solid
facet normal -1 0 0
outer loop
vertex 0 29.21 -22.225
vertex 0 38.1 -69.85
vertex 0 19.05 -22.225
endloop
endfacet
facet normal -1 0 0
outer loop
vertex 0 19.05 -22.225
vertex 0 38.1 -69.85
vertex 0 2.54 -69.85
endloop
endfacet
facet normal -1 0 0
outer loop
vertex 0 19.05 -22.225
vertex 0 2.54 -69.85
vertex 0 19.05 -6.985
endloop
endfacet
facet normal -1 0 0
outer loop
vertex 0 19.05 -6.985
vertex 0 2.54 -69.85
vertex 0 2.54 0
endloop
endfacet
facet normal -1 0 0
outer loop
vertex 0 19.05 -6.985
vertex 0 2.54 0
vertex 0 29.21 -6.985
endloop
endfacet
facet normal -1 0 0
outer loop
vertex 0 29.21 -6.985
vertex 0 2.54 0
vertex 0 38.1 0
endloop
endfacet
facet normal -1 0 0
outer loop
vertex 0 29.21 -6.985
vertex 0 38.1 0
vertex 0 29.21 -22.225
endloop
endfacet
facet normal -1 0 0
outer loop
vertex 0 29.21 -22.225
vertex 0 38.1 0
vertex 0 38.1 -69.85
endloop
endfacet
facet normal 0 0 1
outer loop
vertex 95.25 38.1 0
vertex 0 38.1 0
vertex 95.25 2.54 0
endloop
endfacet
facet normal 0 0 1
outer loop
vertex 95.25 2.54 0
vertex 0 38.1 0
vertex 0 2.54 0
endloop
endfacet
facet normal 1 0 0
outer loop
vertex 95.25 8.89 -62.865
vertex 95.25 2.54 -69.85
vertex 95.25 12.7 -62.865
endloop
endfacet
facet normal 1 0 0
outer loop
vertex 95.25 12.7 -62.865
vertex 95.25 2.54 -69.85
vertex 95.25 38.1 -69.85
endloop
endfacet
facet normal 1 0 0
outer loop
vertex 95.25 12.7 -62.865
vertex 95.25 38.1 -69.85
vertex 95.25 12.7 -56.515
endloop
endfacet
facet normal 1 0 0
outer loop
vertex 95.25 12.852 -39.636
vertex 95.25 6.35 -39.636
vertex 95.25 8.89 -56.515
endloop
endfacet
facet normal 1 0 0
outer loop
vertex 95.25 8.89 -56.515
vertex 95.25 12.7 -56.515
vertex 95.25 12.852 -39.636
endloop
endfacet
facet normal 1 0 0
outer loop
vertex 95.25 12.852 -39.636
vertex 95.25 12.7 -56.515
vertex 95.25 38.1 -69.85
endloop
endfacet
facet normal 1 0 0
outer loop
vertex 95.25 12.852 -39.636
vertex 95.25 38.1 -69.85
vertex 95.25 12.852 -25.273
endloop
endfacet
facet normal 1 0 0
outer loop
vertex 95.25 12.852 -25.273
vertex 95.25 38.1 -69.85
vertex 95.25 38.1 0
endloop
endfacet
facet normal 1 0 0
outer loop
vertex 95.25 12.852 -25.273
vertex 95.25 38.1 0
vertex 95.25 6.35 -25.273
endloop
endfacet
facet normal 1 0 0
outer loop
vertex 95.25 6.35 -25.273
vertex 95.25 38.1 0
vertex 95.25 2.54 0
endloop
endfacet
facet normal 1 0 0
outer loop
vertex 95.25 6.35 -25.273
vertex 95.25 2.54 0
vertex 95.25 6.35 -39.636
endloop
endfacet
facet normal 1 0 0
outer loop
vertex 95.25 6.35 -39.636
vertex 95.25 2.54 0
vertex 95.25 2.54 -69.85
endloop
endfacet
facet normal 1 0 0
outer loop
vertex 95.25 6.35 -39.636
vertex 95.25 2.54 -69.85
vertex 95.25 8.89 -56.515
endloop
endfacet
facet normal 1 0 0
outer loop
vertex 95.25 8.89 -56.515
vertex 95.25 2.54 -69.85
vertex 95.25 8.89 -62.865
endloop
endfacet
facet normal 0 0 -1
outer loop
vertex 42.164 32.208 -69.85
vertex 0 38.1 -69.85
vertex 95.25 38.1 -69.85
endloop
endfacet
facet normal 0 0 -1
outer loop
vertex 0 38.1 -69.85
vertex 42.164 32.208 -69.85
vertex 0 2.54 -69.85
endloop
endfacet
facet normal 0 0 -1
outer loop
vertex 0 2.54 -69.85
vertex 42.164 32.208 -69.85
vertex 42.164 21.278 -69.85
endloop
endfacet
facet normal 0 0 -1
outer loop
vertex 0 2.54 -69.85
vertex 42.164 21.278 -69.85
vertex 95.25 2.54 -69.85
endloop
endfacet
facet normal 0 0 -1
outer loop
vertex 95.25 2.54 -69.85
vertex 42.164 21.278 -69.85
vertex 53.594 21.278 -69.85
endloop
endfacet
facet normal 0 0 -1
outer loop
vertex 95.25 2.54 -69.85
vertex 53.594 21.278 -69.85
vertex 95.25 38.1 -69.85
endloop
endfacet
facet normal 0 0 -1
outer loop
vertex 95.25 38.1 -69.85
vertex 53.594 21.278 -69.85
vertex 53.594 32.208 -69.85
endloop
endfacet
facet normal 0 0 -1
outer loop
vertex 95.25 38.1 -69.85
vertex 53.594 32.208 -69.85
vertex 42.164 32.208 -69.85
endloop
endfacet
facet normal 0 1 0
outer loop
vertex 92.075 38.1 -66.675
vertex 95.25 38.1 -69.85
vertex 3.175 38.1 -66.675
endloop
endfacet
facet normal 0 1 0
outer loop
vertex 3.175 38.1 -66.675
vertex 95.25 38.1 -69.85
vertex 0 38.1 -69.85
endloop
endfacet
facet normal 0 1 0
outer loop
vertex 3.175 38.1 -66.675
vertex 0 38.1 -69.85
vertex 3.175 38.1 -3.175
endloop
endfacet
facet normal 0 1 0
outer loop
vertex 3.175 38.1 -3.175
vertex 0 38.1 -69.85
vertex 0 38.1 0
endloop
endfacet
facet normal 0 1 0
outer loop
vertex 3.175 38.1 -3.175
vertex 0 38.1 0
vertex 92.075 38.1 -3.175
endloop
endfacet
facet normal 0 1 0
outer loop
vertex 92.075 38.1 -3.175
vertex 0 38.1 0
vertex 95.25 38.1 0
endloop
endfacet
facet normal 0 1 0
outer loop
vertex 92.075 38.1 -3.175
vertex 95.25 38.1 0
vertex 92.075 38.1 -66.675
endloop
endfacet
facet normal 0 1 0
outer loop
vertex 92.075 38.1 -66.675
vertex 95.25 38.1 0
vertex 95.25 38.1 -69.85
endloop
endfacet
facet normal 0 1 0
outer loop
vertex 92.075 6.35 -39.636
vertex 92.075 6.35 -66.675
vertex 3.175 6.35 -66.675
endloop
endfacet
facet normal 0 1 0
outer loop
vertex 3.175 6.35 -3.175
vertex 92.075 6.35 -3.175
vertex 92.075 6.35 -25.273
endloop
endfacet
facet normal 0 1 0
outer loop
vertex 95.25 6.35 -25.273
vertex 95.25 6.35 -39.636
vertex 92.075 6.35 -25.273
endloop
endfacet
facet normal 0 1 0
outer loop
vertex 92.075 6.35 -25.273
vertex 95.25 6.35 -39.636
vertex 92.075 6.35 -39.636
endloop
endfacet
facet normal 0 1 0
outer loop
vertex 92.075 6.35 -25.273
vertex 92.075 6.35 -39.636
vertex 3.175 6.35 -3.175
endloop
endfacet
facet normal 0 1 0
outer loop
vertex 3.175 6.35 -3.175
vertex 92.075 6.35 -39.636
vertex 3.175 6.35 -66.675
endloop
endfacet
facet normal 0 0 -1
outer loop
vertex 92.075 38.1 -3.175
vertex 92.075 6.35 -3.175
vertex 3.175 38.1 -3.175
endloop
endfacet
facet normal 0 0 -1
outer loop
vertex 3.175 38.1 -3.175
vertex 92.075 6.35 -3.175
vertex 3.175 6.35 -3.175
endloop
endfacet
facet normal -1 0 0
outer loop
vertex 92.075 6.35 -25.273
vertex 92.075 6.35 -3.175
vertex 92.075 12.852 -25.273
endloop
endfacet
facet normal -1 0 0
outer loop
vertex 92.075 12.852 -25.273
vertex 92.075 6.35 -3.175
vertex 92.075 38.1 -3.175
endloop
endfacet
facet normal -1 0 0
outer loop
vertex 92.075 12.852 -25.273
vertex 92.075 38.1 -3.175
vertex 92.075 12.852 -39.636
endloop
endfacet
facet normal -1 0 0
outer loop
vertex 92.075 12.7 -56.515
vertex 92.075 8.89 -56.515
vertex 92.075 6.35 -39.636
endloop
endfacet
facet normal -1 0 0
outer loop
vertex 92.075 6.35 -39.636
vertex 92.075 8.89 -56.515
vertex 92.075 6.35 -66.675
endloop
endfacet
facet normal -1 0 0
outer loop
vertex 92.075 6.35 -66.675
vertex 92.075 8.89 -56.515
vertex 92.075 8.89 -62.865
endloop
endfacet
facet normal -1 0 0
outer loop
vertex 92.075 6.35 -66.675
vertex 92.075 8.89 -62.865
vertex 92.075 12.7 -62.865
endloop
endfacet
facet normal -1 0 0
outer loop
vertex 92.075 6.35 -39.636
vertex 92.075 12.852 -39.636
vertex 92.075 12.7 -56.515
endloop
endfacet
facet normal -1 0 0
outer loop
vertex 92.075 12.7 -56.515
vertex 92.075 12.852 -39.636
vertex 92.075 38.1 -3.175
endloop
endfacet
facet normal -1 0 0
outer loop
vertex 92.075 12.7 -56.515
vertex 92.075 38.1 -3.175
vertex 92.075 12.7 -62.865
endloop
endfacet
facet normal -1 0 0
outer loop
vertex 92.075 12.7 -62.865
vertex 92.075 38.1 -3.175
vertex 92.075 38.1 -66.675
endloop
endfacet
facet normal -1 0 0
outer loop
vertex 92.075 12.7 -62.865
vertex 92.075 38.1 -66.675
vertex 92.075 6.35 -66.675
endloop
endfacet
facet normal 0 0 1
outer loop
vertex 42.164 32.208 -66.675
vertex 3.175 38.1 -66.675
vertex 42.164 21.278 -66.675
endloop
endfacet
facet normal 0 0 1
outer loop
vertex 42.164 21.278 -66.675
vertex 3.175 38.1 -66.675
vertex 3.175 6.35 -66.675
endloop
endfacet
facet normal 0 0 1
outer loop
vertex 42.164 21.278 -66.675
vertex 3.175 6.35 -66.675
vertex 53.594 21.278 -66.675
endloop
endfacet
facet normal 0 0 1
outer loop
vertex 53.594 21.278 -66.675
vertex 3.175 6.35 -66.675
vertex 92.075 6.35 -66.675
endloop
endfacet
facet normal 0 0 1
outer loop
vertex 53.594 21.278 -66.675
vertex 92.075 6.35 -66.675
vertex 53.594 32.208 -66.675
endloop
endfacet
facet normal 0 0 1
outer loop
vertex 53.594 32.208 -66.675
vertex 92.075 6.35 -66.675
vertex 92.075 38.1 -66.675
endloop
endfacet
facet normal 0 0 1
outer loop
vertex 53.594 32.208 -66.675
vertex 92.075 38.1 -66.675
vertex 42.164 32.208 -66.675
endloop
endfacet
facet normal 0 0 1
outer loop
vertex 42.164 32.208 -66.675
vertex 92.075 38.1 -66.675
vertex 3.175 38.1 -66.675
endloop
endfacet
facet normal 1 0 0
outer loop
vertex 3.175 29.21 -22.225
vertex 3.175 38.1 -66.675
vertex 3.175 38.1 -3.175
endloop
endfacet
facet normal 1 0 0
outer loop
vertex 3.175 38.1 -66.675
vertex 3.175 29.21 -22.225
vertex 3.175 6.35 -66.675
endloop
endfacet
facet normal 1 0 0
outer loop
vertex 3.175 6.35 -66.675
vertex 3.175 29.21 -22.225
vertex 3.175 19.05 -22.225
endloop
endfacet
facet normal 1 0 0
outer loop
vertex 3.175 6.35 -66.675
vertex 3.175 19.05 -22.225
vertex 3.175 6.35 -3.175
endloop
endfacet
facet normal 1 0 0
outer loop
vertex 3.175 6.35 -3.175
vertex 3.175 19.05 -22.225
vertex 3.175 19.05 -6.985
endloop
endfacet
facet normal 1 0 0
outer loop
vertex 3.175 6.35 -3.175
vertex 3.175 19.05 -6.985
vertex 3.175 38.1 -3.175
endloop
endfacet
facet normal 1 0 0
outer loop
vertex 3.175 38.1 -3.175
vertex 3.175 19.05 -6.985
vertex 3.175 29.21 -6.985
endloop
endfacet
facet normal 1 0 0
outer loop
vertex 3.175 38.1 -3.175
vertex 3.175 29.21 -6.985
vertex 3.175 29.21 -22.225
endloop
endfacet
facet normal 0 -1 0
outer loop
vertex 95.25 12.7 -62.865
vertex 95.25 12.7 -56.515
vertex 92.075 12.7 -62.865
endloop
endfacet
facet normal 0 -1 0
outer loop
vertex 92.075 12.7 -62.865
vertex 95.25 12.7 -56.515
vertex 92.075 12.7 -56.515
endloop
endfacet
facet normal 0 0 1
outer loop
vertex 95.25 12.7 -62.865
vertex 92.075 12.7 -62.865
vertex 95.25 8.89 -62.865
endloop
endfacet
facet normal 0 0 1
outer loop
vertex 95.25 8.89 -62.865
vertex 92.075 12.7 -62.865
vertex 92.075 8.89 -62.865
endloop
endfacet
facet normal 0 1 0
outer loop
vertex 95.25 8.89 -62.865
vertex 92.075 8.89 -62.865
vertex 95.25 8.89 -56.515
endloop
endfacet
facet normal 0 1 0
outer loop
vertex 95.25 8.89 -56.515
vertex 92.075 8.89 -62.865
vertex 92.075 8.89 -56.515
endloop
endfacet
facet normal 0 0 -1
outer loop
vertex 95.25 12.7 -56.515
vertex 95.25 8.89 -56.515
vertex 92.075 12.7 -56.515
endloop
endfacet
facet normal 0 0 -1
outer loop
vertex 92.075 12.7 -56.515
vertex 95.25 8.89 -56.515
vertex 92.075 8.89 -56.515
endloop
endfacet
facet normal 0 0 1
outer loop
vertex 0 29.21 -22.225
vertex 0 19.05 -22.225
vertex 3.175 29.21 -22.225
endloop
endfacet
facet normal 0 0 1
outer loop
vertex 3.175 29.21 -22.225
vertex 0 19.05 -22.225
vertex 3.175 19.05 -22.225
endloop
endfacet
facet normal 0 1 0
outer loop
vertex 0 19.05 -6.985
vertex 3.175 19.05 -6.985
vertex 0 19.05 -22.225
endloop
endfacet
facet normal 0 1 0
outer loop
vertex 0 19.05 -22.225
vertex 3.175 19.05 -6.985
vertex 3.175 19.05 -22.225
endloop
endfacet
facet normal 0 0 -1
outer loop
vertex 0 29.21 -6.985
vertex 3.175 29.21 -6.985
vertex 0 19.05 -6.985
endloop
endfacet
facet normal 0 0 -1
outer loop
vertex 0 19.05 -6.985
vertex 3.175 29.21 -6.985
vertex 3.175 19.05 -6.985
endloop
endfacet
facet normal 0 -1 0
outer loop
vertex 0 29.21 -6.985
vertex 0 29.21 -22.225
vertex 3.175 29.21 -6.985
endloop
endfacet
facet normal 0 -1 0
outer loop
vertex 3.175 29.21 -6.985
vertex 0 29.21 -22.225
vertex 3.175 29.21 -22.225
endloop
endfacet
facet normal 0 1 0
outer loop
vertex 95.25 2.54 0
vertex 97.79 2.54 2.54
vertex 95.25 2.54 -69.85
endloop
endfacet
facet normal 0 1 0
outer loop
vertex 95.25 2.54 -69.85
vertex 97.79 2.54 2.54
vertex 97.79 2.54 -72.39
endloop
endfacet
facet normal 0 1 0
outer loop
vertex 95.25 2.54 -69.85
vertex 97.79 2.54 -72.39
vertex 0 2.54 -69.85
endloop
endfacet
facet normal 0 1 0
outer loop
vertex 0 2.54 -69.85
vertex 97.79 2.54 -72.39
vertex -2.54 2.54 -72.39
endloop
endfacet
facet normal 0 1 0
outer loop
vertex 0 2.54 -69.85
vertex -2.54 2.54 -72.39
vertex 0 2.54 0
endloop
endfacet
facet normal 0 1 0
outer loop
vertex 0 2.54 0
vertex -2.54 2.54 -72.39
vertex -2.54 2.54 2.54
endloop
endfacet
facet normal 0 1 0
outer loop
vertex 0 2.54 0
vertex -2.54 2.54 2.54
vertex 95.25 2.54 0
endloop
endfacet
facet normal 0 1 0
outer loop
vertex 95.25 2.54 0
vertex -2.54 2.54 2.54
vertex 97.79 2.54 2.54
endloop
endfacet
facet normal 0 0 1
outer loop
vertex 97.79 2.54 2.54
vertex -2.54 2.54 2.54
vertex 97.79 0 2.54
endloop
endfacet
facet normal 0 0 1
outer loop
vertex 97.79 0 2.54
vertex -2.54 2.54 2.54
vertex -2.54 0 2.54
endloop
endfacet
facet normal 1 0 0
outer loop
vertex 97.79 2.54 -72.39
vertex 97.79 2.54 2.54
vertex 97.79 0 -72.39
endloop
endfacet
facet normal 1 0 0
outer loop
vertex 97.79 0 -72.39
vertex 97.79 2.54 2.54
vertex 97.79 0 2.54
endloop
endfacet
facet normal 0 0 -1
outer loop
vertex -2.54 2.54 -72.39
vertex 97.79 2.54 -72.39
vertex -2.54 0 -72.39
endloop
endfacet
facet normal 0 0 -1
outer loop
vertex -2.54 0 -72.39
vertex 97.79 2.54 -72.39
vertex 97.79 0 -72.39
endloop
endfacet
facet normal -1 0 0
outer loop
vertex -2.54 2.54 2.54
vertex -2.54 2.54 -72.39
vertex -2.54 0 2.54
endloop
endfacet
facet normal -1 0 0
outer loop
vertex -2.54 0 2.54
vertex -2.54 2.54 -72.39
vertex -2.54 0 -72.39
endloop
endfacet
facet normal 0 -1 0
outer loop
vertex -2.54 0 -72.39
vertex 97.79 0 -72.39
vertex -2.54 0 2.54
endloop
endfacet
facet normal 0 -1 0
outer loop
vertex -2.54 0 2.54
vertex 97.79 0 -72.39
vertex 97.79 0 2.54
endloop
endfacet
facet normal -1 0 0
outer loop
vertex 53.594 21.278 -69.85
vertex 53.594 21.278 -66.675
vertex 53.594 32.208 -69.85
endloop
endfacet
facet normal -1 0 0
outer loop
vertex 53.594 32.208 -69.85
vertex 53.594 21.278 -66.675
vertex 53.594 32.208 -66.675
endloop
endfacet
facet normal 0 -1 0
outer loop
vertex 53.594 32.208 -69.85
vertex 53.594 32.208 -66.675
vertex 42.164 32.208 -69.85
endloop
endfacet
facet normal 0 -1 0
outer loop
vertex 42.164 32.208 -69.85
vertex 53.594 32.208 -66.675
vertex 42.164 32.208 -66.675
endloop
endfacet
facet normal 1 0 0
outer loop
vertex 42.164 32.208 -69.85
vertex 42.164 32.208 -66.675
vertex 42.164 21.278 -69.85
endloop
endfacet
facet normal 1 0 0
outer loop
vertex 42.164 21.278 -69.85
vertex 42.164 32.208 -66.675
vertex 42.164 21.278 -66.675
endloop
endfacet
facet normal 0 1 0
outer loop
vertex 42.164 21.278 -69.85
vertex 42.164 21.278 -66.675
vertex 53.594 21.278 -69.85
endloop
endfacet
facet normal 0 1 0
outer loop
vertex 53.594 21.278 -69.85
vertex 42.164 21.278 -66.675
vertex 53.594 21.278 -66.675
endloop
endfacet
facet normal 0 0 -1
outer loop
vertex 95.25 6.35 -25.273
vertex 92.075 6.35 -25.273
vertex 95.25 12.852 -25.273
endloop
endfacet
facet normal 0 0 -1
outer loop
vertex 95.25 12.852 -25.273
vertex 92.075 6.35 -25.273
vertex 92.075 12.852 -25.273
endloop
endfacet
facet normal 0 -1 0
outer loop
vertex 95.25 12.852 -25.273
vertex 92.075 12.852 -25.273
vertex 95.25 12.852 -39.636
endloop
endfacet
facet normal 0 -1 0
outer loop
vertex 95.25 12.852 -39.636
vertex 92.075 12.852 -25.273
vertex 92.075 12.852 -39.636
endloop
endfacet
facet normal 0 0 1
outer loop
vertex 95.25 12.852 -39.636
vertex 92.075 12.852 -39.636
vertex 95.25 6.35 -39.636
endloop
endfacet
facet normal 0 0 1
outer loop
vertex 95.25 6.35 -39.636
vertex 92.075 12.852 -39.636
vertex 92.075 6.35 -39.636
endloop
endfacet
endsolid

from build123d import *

# Parameters (mm, degrees)
SKETCH1_W           = 95.25
SKETCH1_H           = 69.85
BOSS_EXTRUDE1_DEPTH = 38.1
SKETCH2_W           = 88.9
SKETCH2_H           = 63.5
CUT_EXTRUDE1_DEPTH  = 31.75
CUT_EXTRUDE2_REACH  = 126.11
SKETCH3_W           = 6.35
SKETCH3_H           = 3.81
CUT_EXTRUDE3_REACH  = 126.11
SKETCH4_W           = 15.24
SKETCH4_H           = 10.16
SKETCH5_W           = 100.33
SKETCH5_H           = 74.93
BOSS_EXTRUDE2_DEPTH = 2.54
SKETCH6_W           = 11.43
SKETCH6_H           = 10.929541263
CUT_EXTRUDE4_DEPTH  = 6.35
SKETCH7_W           = 14.362267298
SKETCH7_H           = 6.50180408
CUT_EXTRUDE5_DEPTH  = 6.35


with BuildPart() as part:
    # Sketch1 → Boss-Extrude1 (new body)
    with BuildSketch(Plane(origin=(0, 0, 0), x_dir=(1, 0, 0), z_dir=(0, 1, 0))):
        with Locations((47.625, 34.925)):
            Rectangle(SKETCH1_W, SKETCH1_H)
    extrude(amount=BOSS_EXTRUDE1_DEPTH)

    # Sketch2 → Cut-Extrude1 (cut)
    with BuildSketch(Plane(origin=(0, 38.1, 0), x_dir=(1, 0, 0), z_dir=(0, 1, 0))):
        with Locations((47.625, 34.925)):
            Rectangle(SKETCH2_W, SKETCH2_H)
    extrude(amount=-CUT_EXTRUDE1_DEPTH, mode=Mode.SUBTRACT)

    # Sketch3 → Cut-Extrude2 (cut, up to next)
    with BuildSketch(Plane(origin=(95.25, 0, 0), x_dir=(0, 0, -1), z_dir=(1, 0, 0)), mode=Mode.PRIVATE) as cut_extrude2_sk1:
        with Locations((59.69, 10.795)):
            Rectangle(SKETCH3_W, SKETCH3_H)
    cut_extrude2_tool1 = extrude(cut_extrude2_sk1.sketch, amount=-CUT_EXTRUDE2_REACH, mode=Mode.PRIVATE) & part.part
    add(cut_extrude2_tool1.solids().sort_by_distance((95.25, 10.795, -59.69))[0], mode=Mode.SUBTRACT)

    # Sketch4 → Cut-Extrude3 (cut, up to next)
    with BuildSketch(Plane.ZY, mode=Mode.PRIVATE) as cut_extrude3_sk1:
        with Locations((-14.605, 24.13)):
            Rectangle(SKETCH4_W, SKETCH4_H)
    cut_extrude3_tool1 = extrude(cut_extrude3_sk1.sketch, amount=-CUT_EXTRUDE3_REACH, mode=Mode.PRIVATE) & part.part
    add(cut_extrude3_tool1.solids().sort_by_distance((0, 24.13, -14.605))[0], mode=Mode.SUBTRACT)

    # Sketch5 → Boss-Extrude2 (add)
    with BuildSketch(Plane.XZ):
        with Locations((47.625, -34.925)):
            Rectangle(SKETCH5_W, SKETCH5_H)
    extrude(amount=-BOSS_EXTRUDE2_DEPTH)

    # Sketch6 → Cut-Extrude4 (cut)
    with BuildSketch(Plane(origin=(0, 0, -69.85), x_dir=(-1, 0, 0), z_dir=(0, 0, -1))):
        with Locations((-47.879, 26.743022326)):
            Rectangle(SKETCH6_W, SKETCH6_H)
    extrude(amount=-CUT_EXTRUDE4_DEPTH, mode=Mode.SUBTRACT)

    # Sketch7 → Cut-Extrude5 (cut)
    with BuildSketch(Plane(origin=(95.25, 0, 0), x_dir=(0, 0, -1), z_dir=(1, 0, 0))):
        with Locations((32.45447078, 9.60090204)):
            Rectangle(SKETCH7_W, SKETCH7_H)
    extrude(amount=-CUT_EXTRUDE5_DEPTH, mode=Mode.SUBTRACT)


solid = part.part
